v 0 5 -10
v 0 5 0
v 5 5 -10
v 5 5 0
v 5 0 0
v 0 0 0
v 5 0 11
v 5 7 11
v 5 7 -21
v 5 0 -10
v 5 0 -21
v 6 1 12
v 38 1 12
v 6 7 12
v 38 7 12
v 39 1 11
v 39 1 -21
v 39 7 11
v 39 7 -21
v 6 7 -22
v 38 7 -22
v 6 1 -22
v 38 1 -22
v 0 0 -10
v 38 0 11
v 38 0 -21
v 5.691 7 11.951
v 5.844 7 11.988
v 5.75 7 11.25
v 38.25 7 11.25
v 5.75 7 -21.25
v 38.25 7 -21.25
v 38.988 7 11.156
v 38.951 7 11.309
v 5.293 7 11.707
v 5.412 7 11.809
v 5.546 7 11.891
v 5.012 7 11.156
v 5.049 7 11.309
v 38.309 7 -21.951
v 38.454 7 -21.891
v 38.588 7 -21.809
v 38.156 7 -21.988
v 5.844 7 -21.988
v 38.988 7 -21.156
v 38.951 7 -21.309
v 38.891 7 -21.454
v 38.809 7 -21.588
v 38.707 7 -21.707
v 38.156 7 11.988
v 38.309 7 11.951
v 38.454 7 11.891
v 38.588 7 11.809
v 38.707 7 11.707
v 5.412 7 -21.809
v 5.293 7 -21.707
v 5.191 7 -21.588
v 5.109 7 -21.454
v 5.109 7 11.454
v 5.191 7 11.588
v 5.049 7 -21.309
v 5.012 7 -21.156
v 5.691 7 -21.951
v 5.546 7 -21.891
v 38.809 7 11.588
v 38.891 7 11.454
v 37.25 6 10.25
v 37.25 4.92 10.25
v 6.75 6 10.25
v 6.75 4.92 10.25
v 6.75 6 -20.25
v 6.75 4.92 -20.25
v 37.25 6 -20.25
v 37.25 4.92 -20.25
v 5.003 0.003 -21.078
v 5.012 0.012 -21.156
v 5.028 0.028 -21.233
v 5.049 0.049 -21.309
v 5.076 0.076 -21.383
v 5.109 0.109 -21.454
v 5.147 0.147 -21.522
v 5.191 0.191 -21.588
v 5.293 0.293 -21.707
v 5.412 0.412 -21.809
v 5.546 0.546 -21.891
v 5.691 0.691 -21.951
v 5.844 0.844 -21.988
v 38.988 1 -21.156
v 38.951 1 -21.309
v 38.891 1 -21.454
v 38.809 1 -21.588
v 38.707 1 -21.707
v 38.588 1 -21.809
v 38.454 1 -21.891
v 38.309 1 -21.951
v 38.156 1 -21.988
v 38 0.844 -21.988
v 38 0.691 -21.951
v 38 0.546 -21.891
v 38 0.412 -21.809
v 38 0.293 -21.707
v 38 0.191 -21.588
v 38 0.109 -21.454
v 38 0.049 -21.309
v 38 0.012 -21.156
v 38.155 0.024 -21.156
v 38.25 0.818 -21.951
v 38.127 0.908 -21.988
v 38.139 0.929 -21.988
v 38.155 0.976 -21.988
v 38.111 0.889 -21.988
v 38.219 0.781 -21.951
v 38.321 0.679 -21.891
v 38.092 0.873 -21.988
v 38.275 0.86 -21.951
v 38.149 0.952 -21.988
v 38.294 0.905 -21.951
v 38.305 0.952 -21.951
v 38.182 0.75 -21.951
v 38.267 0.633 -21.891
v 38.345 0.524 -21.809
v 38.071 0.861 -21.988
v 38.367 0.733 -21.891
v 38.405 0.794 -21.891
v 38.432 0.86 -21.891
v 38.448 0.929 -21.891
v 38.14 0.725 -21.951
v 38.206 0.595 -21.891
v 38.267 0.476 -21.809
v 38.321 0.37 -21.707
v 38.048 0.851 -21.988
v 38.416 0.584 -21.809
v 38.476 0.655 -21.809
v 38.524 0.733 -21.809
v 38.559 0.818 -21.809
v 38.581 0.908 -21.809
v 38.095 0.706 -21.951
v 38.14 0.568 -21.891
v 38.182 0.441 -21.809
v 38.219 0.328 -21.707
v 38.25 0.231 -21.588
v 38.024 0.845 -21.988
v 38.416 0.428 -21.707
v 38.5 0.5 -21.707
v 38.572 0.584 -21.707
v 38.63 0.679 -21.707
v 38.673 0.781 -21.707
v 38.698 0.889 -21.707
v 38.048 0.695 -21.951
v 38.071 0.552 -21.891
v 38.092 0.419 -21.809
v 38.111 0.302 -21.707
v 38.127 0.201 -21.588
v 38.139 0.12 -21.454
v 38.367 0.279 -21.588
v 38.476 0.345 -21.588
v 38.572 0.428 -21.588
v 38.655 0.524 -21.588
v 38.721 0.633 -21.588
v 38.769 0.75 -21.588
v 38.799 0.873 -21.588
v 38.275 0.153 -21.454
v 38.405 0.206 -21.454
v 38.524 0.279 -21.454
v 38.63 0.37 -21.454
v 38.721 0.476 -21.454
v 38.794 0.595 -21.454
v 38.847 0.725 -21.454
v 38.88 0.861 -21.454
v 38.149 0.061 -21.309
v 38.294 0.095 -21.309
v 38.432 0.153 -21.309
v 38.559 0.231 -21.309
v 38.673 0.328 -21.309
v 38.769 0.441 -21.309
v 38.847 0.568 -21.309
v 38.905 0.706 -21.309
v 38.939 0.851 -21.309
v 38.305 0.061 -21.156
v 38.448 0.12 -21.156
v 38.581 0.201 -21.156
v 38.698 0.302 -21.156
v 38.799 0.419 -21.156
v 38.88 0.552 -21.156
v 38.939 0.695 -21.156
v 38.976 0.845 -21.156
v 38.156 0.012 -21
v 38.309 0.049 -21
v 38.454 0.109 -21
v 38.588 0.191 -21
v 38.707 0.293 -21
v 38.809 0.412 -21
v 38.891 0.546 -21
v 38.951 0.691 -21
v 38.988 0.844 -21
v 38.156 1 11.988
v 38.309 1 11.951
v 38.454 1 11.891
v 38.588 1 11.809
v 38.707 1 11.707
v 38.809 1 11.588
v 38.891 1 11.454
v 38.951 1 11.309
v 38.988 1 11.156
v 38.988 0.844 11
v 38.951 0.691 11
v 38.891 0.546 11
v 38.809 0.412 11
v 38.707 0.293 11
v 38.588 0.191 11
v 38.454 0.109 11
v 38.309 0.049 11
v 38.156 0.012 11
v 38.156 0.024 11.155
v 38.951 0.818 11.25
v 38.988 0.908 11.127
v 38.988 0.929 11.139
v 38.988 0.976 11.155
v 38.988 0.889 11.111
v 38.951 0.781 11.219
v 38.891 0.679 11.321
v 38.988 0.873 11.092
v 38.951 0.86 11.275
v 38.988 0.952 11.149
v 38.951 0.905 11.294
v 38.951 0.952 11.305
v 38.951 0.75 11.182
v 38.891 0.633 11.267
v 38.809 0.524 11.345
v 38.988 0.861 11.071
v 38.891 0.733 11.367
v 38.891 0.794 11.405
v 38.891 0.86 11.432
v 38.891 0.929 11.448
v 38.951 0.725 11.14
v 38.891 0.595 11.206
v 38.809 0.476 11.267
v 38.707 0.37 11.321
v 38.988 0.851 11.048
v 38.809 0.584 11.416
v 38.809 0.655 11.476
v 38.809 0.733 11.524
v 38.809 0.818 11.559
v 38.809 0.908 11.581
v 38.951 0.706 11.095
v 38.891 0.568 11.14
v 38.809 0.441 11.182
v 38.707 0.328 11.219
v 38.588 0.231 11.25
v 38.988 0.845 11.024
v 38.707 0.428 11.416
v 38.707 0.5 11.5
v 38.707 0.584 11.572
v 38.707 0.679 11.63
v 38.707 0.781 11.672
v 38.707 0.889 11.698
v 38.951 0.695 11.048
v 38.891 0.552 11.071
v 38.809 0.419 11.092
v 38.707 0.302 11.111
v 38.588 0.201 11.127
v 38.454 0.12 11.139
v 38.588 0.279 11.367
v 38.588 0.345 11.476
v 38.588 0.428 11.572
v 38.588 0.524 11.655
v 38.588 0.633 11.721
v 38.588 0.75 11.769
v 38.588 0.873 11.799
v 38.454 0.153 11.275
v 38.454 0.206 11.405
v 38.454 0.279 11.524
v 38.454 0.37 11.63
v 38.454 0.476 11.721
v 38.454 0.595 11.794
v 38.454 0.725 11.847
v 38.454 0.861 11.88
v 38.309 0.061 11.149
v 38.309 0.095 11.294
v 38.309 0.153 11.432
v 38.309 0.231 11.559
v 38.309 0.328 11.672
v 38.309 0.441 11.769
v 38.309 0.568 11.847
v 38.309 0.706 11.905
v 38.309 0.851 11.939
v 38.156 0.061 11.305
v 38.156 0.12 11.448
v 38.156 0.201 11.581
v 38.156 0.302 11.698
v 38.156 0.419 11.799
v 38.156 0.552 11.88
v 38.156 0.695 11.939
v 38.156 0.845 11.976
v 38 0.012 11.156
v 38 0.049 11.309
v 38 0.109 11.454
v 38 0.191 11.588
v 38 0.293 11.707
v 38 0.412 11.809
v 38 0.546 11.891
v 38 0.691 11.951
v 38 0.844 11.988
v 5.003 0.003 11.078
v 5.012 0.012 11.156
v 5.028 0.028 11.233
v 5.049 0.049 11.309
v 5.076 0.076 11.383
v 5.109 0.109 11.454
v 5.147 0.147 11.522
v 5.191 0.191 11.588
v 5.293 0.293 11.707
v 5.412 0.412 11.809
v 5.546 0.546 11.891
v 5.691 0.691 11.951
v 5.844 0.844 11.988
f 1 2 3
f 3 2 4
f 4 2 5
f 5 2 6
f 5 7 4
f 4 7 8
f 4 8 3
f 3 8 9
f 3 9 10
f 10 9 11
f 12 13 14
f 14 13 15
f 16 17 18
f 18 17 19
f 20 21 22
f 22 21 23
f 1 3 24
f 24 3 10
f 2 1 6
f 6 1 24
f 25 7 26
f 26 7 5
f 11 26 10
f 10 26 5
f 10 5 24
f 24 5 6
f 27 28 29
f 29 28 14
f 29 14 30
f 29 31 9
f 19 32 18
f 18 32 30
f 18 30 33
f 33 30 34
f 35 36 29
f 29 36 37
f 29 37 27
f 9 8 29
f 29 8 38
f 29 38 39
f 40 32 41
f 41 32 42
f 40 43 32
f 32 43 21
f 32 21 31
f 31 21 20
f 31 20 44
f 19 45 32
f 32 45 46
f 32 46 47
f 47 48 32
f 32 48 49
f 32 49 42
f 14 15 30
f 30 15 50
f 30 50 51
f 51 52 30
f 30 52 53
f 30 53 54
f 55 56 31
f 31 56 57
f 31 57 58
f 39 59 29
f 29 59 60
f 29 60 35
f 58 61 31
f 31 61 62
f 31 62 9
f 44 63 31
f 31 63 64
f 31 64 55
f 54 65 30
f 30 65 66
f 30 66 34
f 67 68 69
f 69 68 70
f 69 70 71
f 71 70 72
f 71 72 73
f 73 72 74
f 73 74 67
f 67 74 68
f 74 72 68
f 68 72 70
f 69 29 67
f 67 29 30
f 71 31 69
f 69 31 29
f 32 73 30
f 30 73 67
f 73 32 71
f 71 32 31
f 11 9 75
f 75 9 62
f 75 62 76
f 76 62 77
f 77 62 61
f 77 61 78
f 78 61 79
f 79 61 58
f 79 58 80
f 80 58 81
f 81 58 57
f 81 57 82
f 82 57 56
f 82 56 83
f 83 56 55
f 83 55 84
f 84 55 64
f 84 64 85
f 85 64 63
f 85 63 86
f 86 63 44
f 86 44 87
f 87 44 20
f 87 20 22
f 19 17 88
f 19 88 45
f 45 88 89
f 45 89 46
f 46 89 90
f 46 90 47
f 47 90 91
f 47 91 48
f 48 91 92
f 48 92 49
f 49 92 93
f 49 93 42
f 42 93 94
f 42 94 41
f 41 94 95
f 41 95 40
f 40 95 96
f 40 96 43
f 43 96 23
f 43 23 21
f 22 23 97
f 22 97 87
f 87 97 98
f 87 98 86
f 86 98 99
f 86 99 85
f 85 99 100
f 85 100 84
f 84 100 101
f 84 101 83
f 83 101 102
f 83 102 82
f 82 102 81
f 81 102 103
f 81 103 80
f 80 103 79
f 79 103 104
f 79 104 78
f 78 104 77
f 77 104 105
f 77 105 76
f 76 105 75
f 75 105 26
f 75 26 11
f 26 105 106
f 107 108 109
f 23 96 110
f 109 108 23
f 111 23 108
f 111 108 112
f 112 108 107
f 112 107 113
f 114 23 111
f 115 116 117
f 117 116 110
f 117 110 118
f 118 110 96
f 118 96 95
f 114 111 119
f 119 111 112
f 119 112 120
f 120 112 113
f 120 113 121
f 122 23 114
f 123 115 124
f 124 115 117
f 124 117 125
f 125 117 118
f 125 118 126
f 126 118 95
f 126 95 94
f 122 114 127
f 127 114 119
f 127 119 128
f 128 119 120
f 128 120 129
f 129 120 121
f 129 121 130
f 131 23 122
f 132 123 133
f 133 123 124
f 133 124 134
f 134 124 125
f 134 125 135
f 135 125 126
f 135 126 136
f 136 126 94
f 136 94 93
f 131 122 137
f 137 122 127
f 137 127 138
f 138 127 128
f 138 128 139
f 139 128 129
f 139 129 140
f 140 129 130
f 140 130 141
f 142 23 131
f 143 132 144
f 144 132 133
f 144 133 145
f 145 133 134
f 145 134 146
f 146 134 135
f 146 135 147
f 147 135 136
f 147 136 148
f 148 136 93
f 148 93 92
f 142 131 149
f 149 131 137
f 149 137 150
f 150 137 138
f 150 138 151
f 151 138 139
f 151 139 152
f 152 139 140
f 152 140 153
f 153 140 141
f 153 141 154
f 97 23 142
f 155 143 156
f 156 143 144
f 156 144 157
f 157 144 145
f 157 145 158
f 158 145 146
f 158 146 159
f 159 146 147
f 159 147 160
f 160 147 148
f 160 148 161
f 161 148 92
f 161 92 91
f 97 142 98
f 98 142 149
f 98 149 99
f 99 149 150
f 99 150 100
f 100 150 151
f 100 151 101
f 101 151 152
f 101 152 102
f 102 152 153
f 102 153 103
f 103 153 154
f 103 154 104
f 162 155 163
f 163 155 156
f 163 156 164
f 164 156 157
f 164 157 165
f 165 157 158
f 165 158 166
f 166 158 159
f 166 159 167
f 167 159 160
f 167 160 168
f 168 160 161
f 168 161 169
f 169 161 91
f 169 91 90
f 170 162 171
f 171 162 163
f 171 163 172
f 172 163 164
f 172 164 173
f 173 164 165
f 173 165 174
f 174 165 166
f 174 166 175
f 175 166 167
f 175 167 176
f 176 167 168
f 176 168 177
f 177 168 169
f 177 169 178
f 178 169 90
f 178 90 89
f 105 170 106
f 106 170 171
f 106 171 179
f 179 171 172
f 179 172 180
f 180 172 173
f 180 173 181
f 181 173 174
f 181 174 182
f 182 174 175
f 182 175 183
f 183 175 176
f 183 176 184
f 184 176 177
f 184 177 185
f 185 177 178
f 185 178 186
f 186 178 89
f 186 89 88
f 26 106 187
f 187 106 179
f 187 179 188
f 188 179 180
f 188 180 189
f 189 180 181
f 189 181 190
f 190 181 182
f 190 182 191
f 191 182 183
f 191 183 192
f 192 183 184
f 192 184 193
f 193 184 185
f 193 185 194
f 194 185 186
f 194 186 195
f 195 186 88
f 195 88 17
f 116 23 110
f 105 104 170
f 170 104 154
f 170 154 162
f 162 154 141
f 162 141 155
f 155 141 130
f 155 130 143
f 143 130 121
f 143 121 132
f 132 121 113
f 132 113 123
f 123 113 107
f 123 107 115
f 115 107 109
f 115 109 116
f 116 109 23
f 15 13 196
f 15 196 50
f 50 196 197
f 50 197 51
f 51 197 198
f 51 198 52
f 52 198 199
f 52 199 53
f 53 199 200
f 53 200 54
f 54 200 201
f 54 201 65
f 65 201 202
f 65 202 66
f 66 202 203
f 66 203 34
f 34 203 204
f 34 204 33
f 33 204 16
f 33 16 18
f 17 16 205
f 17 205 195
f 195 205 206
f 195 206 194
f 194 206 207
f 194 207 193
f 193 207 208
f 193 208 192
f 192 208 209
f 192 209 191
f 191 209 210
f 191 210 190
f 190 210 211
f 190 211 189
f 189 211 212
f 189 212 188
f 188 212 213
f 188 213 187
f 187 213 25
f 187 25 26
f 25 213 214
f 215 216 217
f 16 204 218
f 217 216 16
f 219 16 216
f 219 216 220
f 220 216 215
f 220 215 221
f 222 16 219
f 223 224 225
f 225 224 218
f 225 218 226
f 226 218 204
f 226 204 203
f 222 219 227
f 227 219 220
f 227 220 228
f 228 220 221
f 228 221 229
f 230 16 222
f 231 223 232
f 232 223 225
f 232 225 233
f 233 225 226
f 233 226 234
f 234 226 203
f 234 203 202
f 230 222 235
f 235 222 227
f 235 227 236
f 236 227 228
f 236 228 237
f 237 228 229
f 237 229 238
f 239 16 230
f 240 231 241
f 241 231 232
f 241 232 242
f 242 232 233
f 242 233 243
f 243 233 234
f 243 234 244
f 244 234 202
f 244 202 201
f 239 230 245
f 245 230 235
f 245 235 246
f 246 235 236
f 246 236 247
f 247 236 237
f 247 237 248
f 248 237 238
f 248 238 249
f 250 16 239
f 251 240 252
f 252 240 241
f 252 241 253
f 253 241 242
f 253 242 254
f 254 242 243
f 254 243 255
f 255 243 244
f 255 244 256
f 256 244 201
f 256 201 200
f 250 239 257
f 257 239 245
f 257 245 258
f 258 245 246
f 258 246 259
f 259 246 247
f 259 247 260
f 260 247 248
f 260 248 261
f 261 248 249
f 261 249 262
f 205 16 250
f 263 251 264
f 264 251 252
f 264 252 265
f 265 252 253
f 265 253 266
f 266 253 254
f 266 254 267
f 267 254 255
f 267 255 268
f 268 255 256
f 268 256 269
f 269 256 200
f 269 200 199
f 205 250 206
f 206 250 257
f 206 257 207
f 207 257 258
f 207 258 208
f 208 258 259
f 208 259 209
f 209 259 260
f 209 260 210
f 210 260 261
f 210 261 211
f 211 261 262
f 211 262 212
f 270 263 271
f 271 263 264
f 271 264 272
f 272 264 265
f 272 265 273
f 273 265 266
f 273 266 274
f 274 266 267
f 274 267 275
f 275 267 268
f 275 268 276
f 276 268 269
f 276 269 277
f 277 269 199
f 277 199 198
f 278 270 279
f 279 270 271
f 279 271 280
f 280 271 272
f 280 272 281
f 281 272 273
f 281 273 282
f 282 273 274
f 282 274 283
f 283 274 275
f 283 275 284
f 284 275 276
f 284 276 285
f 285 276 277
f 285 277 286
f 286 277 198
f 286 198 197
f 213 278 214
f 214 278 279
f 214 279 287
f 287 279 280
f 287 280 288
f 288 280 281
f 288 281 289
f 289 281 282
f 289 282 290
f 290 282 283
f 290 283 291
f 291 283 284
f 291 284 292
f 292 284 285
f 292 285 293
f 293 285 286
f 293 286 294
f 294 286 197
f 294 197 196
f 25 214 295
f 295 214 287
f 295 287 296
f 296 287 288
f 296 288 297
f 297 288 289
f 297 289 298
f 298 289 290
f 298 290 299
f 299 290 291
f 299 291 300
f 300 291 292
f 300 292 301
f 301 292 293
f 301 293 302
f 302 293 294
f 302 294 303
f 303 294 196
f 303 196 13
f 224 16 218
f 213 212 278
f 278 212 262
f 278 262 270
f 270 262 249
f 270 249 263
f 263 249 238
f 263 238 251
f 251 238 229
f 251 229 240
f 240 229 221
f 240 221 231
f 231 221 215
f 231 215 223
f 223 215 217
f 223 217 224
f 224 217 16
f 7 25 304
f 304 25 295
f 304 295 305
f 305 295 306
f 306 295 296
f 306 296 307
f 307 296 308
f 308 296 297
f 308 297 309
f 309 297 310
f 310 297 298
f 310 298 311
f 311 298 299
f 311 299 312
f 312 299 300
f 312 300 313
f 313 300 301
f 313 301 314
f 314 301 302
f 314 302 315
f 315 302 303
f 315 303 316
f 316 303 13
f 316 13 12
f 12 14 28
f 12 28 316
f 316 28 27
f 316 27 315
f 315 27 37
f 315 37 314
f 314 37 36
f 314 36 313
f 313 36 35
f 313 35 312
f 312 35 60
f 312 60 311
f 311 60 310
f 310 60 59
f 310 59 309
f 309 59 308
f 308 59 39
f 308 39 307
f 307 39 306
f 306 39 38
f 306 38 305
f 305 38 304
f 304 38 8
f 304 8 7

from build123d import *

# Parameters (mm, degrees)
EXTRUDE_1_DEPTH     = 5
SKETCH_2_W          = 34
SKETCH_2_H          = 34
EXTRUDE_2_DEPTH     = 2
SKETCH_3_W          = 30.5
SKETCH_3_H          = 30.5
CUT_EXTRUDE_2_DEPTH = 2.08
CHAMFER_1_SIZE      = 1
FILLET_2_R          = 1


with BuildPart() as part:
    # 草图1 → 凸台-拉伸1 (new body)
    with BuildSketch(Plane(origin=(0, 0, 0), x_dir=(1, 0, 0), z_dir=(0, 1, 0))):
        Polygon((0, 10), (5, 10), (5, 22), (39, 22), (39, -12), (5, -12), (5, 0), (0, 0), align=None)
    extrude(amount=EXTRUDE_1_DEPTH)

    # 草图2 → 凸台-拉伸2 (add)
    with BuildSketch(Plane(origin=(0, 5, 0), x_dir=(1, 0, 0), z_dir=(0, 1, 0))):
        with Locations((22, 5)):
            Rectangle(SKETCH_2_W, SKETCH_2_H)
    extrude(amount=EXTRUDE_2_DEPTH)

    # 草图3 → 切除-拉伸2 (cut)
    with BuildSketch(Plane(origin=(0, 7, 0), x_dir=(1, 0, 0), z_dir=(0, 1, 0))):
        with Locations((22, 5)):
            Rectangle(SKETCH_3_W, SKETCH_3_H)
    extrude(amount=-CUT_EXTRUDE_2_DEPTH, mode=Mode.SUBTRACT)

    # 倒角1
    chamfer_1_edges = [part.edges().sort_by_distance(p)[0] for p in [
        (22, 7, -20.25),
        (37.25, 7, -5),
        (22, 7, 10.25),
        (6.75, 7, -5),
    ]]
    chamfer(chamfer_1_edges, length=CHAMFER_1_SIZE)

    # 圆角2
    fillet_2_edges = [part.edges().sort_by_distance(p)[0] for p in [
        (5, 3.5, 12),
        (39, 3.5, 12),
        (39, 3.5, -22),
        (5, 3.5, -22),
        (22, 0, 12),
        (39, 0, -5),
        (22, 0, -22),
    ]]
    fillet(fillet_2_edges, radius=FILLET_2_R)


solid = part.part
